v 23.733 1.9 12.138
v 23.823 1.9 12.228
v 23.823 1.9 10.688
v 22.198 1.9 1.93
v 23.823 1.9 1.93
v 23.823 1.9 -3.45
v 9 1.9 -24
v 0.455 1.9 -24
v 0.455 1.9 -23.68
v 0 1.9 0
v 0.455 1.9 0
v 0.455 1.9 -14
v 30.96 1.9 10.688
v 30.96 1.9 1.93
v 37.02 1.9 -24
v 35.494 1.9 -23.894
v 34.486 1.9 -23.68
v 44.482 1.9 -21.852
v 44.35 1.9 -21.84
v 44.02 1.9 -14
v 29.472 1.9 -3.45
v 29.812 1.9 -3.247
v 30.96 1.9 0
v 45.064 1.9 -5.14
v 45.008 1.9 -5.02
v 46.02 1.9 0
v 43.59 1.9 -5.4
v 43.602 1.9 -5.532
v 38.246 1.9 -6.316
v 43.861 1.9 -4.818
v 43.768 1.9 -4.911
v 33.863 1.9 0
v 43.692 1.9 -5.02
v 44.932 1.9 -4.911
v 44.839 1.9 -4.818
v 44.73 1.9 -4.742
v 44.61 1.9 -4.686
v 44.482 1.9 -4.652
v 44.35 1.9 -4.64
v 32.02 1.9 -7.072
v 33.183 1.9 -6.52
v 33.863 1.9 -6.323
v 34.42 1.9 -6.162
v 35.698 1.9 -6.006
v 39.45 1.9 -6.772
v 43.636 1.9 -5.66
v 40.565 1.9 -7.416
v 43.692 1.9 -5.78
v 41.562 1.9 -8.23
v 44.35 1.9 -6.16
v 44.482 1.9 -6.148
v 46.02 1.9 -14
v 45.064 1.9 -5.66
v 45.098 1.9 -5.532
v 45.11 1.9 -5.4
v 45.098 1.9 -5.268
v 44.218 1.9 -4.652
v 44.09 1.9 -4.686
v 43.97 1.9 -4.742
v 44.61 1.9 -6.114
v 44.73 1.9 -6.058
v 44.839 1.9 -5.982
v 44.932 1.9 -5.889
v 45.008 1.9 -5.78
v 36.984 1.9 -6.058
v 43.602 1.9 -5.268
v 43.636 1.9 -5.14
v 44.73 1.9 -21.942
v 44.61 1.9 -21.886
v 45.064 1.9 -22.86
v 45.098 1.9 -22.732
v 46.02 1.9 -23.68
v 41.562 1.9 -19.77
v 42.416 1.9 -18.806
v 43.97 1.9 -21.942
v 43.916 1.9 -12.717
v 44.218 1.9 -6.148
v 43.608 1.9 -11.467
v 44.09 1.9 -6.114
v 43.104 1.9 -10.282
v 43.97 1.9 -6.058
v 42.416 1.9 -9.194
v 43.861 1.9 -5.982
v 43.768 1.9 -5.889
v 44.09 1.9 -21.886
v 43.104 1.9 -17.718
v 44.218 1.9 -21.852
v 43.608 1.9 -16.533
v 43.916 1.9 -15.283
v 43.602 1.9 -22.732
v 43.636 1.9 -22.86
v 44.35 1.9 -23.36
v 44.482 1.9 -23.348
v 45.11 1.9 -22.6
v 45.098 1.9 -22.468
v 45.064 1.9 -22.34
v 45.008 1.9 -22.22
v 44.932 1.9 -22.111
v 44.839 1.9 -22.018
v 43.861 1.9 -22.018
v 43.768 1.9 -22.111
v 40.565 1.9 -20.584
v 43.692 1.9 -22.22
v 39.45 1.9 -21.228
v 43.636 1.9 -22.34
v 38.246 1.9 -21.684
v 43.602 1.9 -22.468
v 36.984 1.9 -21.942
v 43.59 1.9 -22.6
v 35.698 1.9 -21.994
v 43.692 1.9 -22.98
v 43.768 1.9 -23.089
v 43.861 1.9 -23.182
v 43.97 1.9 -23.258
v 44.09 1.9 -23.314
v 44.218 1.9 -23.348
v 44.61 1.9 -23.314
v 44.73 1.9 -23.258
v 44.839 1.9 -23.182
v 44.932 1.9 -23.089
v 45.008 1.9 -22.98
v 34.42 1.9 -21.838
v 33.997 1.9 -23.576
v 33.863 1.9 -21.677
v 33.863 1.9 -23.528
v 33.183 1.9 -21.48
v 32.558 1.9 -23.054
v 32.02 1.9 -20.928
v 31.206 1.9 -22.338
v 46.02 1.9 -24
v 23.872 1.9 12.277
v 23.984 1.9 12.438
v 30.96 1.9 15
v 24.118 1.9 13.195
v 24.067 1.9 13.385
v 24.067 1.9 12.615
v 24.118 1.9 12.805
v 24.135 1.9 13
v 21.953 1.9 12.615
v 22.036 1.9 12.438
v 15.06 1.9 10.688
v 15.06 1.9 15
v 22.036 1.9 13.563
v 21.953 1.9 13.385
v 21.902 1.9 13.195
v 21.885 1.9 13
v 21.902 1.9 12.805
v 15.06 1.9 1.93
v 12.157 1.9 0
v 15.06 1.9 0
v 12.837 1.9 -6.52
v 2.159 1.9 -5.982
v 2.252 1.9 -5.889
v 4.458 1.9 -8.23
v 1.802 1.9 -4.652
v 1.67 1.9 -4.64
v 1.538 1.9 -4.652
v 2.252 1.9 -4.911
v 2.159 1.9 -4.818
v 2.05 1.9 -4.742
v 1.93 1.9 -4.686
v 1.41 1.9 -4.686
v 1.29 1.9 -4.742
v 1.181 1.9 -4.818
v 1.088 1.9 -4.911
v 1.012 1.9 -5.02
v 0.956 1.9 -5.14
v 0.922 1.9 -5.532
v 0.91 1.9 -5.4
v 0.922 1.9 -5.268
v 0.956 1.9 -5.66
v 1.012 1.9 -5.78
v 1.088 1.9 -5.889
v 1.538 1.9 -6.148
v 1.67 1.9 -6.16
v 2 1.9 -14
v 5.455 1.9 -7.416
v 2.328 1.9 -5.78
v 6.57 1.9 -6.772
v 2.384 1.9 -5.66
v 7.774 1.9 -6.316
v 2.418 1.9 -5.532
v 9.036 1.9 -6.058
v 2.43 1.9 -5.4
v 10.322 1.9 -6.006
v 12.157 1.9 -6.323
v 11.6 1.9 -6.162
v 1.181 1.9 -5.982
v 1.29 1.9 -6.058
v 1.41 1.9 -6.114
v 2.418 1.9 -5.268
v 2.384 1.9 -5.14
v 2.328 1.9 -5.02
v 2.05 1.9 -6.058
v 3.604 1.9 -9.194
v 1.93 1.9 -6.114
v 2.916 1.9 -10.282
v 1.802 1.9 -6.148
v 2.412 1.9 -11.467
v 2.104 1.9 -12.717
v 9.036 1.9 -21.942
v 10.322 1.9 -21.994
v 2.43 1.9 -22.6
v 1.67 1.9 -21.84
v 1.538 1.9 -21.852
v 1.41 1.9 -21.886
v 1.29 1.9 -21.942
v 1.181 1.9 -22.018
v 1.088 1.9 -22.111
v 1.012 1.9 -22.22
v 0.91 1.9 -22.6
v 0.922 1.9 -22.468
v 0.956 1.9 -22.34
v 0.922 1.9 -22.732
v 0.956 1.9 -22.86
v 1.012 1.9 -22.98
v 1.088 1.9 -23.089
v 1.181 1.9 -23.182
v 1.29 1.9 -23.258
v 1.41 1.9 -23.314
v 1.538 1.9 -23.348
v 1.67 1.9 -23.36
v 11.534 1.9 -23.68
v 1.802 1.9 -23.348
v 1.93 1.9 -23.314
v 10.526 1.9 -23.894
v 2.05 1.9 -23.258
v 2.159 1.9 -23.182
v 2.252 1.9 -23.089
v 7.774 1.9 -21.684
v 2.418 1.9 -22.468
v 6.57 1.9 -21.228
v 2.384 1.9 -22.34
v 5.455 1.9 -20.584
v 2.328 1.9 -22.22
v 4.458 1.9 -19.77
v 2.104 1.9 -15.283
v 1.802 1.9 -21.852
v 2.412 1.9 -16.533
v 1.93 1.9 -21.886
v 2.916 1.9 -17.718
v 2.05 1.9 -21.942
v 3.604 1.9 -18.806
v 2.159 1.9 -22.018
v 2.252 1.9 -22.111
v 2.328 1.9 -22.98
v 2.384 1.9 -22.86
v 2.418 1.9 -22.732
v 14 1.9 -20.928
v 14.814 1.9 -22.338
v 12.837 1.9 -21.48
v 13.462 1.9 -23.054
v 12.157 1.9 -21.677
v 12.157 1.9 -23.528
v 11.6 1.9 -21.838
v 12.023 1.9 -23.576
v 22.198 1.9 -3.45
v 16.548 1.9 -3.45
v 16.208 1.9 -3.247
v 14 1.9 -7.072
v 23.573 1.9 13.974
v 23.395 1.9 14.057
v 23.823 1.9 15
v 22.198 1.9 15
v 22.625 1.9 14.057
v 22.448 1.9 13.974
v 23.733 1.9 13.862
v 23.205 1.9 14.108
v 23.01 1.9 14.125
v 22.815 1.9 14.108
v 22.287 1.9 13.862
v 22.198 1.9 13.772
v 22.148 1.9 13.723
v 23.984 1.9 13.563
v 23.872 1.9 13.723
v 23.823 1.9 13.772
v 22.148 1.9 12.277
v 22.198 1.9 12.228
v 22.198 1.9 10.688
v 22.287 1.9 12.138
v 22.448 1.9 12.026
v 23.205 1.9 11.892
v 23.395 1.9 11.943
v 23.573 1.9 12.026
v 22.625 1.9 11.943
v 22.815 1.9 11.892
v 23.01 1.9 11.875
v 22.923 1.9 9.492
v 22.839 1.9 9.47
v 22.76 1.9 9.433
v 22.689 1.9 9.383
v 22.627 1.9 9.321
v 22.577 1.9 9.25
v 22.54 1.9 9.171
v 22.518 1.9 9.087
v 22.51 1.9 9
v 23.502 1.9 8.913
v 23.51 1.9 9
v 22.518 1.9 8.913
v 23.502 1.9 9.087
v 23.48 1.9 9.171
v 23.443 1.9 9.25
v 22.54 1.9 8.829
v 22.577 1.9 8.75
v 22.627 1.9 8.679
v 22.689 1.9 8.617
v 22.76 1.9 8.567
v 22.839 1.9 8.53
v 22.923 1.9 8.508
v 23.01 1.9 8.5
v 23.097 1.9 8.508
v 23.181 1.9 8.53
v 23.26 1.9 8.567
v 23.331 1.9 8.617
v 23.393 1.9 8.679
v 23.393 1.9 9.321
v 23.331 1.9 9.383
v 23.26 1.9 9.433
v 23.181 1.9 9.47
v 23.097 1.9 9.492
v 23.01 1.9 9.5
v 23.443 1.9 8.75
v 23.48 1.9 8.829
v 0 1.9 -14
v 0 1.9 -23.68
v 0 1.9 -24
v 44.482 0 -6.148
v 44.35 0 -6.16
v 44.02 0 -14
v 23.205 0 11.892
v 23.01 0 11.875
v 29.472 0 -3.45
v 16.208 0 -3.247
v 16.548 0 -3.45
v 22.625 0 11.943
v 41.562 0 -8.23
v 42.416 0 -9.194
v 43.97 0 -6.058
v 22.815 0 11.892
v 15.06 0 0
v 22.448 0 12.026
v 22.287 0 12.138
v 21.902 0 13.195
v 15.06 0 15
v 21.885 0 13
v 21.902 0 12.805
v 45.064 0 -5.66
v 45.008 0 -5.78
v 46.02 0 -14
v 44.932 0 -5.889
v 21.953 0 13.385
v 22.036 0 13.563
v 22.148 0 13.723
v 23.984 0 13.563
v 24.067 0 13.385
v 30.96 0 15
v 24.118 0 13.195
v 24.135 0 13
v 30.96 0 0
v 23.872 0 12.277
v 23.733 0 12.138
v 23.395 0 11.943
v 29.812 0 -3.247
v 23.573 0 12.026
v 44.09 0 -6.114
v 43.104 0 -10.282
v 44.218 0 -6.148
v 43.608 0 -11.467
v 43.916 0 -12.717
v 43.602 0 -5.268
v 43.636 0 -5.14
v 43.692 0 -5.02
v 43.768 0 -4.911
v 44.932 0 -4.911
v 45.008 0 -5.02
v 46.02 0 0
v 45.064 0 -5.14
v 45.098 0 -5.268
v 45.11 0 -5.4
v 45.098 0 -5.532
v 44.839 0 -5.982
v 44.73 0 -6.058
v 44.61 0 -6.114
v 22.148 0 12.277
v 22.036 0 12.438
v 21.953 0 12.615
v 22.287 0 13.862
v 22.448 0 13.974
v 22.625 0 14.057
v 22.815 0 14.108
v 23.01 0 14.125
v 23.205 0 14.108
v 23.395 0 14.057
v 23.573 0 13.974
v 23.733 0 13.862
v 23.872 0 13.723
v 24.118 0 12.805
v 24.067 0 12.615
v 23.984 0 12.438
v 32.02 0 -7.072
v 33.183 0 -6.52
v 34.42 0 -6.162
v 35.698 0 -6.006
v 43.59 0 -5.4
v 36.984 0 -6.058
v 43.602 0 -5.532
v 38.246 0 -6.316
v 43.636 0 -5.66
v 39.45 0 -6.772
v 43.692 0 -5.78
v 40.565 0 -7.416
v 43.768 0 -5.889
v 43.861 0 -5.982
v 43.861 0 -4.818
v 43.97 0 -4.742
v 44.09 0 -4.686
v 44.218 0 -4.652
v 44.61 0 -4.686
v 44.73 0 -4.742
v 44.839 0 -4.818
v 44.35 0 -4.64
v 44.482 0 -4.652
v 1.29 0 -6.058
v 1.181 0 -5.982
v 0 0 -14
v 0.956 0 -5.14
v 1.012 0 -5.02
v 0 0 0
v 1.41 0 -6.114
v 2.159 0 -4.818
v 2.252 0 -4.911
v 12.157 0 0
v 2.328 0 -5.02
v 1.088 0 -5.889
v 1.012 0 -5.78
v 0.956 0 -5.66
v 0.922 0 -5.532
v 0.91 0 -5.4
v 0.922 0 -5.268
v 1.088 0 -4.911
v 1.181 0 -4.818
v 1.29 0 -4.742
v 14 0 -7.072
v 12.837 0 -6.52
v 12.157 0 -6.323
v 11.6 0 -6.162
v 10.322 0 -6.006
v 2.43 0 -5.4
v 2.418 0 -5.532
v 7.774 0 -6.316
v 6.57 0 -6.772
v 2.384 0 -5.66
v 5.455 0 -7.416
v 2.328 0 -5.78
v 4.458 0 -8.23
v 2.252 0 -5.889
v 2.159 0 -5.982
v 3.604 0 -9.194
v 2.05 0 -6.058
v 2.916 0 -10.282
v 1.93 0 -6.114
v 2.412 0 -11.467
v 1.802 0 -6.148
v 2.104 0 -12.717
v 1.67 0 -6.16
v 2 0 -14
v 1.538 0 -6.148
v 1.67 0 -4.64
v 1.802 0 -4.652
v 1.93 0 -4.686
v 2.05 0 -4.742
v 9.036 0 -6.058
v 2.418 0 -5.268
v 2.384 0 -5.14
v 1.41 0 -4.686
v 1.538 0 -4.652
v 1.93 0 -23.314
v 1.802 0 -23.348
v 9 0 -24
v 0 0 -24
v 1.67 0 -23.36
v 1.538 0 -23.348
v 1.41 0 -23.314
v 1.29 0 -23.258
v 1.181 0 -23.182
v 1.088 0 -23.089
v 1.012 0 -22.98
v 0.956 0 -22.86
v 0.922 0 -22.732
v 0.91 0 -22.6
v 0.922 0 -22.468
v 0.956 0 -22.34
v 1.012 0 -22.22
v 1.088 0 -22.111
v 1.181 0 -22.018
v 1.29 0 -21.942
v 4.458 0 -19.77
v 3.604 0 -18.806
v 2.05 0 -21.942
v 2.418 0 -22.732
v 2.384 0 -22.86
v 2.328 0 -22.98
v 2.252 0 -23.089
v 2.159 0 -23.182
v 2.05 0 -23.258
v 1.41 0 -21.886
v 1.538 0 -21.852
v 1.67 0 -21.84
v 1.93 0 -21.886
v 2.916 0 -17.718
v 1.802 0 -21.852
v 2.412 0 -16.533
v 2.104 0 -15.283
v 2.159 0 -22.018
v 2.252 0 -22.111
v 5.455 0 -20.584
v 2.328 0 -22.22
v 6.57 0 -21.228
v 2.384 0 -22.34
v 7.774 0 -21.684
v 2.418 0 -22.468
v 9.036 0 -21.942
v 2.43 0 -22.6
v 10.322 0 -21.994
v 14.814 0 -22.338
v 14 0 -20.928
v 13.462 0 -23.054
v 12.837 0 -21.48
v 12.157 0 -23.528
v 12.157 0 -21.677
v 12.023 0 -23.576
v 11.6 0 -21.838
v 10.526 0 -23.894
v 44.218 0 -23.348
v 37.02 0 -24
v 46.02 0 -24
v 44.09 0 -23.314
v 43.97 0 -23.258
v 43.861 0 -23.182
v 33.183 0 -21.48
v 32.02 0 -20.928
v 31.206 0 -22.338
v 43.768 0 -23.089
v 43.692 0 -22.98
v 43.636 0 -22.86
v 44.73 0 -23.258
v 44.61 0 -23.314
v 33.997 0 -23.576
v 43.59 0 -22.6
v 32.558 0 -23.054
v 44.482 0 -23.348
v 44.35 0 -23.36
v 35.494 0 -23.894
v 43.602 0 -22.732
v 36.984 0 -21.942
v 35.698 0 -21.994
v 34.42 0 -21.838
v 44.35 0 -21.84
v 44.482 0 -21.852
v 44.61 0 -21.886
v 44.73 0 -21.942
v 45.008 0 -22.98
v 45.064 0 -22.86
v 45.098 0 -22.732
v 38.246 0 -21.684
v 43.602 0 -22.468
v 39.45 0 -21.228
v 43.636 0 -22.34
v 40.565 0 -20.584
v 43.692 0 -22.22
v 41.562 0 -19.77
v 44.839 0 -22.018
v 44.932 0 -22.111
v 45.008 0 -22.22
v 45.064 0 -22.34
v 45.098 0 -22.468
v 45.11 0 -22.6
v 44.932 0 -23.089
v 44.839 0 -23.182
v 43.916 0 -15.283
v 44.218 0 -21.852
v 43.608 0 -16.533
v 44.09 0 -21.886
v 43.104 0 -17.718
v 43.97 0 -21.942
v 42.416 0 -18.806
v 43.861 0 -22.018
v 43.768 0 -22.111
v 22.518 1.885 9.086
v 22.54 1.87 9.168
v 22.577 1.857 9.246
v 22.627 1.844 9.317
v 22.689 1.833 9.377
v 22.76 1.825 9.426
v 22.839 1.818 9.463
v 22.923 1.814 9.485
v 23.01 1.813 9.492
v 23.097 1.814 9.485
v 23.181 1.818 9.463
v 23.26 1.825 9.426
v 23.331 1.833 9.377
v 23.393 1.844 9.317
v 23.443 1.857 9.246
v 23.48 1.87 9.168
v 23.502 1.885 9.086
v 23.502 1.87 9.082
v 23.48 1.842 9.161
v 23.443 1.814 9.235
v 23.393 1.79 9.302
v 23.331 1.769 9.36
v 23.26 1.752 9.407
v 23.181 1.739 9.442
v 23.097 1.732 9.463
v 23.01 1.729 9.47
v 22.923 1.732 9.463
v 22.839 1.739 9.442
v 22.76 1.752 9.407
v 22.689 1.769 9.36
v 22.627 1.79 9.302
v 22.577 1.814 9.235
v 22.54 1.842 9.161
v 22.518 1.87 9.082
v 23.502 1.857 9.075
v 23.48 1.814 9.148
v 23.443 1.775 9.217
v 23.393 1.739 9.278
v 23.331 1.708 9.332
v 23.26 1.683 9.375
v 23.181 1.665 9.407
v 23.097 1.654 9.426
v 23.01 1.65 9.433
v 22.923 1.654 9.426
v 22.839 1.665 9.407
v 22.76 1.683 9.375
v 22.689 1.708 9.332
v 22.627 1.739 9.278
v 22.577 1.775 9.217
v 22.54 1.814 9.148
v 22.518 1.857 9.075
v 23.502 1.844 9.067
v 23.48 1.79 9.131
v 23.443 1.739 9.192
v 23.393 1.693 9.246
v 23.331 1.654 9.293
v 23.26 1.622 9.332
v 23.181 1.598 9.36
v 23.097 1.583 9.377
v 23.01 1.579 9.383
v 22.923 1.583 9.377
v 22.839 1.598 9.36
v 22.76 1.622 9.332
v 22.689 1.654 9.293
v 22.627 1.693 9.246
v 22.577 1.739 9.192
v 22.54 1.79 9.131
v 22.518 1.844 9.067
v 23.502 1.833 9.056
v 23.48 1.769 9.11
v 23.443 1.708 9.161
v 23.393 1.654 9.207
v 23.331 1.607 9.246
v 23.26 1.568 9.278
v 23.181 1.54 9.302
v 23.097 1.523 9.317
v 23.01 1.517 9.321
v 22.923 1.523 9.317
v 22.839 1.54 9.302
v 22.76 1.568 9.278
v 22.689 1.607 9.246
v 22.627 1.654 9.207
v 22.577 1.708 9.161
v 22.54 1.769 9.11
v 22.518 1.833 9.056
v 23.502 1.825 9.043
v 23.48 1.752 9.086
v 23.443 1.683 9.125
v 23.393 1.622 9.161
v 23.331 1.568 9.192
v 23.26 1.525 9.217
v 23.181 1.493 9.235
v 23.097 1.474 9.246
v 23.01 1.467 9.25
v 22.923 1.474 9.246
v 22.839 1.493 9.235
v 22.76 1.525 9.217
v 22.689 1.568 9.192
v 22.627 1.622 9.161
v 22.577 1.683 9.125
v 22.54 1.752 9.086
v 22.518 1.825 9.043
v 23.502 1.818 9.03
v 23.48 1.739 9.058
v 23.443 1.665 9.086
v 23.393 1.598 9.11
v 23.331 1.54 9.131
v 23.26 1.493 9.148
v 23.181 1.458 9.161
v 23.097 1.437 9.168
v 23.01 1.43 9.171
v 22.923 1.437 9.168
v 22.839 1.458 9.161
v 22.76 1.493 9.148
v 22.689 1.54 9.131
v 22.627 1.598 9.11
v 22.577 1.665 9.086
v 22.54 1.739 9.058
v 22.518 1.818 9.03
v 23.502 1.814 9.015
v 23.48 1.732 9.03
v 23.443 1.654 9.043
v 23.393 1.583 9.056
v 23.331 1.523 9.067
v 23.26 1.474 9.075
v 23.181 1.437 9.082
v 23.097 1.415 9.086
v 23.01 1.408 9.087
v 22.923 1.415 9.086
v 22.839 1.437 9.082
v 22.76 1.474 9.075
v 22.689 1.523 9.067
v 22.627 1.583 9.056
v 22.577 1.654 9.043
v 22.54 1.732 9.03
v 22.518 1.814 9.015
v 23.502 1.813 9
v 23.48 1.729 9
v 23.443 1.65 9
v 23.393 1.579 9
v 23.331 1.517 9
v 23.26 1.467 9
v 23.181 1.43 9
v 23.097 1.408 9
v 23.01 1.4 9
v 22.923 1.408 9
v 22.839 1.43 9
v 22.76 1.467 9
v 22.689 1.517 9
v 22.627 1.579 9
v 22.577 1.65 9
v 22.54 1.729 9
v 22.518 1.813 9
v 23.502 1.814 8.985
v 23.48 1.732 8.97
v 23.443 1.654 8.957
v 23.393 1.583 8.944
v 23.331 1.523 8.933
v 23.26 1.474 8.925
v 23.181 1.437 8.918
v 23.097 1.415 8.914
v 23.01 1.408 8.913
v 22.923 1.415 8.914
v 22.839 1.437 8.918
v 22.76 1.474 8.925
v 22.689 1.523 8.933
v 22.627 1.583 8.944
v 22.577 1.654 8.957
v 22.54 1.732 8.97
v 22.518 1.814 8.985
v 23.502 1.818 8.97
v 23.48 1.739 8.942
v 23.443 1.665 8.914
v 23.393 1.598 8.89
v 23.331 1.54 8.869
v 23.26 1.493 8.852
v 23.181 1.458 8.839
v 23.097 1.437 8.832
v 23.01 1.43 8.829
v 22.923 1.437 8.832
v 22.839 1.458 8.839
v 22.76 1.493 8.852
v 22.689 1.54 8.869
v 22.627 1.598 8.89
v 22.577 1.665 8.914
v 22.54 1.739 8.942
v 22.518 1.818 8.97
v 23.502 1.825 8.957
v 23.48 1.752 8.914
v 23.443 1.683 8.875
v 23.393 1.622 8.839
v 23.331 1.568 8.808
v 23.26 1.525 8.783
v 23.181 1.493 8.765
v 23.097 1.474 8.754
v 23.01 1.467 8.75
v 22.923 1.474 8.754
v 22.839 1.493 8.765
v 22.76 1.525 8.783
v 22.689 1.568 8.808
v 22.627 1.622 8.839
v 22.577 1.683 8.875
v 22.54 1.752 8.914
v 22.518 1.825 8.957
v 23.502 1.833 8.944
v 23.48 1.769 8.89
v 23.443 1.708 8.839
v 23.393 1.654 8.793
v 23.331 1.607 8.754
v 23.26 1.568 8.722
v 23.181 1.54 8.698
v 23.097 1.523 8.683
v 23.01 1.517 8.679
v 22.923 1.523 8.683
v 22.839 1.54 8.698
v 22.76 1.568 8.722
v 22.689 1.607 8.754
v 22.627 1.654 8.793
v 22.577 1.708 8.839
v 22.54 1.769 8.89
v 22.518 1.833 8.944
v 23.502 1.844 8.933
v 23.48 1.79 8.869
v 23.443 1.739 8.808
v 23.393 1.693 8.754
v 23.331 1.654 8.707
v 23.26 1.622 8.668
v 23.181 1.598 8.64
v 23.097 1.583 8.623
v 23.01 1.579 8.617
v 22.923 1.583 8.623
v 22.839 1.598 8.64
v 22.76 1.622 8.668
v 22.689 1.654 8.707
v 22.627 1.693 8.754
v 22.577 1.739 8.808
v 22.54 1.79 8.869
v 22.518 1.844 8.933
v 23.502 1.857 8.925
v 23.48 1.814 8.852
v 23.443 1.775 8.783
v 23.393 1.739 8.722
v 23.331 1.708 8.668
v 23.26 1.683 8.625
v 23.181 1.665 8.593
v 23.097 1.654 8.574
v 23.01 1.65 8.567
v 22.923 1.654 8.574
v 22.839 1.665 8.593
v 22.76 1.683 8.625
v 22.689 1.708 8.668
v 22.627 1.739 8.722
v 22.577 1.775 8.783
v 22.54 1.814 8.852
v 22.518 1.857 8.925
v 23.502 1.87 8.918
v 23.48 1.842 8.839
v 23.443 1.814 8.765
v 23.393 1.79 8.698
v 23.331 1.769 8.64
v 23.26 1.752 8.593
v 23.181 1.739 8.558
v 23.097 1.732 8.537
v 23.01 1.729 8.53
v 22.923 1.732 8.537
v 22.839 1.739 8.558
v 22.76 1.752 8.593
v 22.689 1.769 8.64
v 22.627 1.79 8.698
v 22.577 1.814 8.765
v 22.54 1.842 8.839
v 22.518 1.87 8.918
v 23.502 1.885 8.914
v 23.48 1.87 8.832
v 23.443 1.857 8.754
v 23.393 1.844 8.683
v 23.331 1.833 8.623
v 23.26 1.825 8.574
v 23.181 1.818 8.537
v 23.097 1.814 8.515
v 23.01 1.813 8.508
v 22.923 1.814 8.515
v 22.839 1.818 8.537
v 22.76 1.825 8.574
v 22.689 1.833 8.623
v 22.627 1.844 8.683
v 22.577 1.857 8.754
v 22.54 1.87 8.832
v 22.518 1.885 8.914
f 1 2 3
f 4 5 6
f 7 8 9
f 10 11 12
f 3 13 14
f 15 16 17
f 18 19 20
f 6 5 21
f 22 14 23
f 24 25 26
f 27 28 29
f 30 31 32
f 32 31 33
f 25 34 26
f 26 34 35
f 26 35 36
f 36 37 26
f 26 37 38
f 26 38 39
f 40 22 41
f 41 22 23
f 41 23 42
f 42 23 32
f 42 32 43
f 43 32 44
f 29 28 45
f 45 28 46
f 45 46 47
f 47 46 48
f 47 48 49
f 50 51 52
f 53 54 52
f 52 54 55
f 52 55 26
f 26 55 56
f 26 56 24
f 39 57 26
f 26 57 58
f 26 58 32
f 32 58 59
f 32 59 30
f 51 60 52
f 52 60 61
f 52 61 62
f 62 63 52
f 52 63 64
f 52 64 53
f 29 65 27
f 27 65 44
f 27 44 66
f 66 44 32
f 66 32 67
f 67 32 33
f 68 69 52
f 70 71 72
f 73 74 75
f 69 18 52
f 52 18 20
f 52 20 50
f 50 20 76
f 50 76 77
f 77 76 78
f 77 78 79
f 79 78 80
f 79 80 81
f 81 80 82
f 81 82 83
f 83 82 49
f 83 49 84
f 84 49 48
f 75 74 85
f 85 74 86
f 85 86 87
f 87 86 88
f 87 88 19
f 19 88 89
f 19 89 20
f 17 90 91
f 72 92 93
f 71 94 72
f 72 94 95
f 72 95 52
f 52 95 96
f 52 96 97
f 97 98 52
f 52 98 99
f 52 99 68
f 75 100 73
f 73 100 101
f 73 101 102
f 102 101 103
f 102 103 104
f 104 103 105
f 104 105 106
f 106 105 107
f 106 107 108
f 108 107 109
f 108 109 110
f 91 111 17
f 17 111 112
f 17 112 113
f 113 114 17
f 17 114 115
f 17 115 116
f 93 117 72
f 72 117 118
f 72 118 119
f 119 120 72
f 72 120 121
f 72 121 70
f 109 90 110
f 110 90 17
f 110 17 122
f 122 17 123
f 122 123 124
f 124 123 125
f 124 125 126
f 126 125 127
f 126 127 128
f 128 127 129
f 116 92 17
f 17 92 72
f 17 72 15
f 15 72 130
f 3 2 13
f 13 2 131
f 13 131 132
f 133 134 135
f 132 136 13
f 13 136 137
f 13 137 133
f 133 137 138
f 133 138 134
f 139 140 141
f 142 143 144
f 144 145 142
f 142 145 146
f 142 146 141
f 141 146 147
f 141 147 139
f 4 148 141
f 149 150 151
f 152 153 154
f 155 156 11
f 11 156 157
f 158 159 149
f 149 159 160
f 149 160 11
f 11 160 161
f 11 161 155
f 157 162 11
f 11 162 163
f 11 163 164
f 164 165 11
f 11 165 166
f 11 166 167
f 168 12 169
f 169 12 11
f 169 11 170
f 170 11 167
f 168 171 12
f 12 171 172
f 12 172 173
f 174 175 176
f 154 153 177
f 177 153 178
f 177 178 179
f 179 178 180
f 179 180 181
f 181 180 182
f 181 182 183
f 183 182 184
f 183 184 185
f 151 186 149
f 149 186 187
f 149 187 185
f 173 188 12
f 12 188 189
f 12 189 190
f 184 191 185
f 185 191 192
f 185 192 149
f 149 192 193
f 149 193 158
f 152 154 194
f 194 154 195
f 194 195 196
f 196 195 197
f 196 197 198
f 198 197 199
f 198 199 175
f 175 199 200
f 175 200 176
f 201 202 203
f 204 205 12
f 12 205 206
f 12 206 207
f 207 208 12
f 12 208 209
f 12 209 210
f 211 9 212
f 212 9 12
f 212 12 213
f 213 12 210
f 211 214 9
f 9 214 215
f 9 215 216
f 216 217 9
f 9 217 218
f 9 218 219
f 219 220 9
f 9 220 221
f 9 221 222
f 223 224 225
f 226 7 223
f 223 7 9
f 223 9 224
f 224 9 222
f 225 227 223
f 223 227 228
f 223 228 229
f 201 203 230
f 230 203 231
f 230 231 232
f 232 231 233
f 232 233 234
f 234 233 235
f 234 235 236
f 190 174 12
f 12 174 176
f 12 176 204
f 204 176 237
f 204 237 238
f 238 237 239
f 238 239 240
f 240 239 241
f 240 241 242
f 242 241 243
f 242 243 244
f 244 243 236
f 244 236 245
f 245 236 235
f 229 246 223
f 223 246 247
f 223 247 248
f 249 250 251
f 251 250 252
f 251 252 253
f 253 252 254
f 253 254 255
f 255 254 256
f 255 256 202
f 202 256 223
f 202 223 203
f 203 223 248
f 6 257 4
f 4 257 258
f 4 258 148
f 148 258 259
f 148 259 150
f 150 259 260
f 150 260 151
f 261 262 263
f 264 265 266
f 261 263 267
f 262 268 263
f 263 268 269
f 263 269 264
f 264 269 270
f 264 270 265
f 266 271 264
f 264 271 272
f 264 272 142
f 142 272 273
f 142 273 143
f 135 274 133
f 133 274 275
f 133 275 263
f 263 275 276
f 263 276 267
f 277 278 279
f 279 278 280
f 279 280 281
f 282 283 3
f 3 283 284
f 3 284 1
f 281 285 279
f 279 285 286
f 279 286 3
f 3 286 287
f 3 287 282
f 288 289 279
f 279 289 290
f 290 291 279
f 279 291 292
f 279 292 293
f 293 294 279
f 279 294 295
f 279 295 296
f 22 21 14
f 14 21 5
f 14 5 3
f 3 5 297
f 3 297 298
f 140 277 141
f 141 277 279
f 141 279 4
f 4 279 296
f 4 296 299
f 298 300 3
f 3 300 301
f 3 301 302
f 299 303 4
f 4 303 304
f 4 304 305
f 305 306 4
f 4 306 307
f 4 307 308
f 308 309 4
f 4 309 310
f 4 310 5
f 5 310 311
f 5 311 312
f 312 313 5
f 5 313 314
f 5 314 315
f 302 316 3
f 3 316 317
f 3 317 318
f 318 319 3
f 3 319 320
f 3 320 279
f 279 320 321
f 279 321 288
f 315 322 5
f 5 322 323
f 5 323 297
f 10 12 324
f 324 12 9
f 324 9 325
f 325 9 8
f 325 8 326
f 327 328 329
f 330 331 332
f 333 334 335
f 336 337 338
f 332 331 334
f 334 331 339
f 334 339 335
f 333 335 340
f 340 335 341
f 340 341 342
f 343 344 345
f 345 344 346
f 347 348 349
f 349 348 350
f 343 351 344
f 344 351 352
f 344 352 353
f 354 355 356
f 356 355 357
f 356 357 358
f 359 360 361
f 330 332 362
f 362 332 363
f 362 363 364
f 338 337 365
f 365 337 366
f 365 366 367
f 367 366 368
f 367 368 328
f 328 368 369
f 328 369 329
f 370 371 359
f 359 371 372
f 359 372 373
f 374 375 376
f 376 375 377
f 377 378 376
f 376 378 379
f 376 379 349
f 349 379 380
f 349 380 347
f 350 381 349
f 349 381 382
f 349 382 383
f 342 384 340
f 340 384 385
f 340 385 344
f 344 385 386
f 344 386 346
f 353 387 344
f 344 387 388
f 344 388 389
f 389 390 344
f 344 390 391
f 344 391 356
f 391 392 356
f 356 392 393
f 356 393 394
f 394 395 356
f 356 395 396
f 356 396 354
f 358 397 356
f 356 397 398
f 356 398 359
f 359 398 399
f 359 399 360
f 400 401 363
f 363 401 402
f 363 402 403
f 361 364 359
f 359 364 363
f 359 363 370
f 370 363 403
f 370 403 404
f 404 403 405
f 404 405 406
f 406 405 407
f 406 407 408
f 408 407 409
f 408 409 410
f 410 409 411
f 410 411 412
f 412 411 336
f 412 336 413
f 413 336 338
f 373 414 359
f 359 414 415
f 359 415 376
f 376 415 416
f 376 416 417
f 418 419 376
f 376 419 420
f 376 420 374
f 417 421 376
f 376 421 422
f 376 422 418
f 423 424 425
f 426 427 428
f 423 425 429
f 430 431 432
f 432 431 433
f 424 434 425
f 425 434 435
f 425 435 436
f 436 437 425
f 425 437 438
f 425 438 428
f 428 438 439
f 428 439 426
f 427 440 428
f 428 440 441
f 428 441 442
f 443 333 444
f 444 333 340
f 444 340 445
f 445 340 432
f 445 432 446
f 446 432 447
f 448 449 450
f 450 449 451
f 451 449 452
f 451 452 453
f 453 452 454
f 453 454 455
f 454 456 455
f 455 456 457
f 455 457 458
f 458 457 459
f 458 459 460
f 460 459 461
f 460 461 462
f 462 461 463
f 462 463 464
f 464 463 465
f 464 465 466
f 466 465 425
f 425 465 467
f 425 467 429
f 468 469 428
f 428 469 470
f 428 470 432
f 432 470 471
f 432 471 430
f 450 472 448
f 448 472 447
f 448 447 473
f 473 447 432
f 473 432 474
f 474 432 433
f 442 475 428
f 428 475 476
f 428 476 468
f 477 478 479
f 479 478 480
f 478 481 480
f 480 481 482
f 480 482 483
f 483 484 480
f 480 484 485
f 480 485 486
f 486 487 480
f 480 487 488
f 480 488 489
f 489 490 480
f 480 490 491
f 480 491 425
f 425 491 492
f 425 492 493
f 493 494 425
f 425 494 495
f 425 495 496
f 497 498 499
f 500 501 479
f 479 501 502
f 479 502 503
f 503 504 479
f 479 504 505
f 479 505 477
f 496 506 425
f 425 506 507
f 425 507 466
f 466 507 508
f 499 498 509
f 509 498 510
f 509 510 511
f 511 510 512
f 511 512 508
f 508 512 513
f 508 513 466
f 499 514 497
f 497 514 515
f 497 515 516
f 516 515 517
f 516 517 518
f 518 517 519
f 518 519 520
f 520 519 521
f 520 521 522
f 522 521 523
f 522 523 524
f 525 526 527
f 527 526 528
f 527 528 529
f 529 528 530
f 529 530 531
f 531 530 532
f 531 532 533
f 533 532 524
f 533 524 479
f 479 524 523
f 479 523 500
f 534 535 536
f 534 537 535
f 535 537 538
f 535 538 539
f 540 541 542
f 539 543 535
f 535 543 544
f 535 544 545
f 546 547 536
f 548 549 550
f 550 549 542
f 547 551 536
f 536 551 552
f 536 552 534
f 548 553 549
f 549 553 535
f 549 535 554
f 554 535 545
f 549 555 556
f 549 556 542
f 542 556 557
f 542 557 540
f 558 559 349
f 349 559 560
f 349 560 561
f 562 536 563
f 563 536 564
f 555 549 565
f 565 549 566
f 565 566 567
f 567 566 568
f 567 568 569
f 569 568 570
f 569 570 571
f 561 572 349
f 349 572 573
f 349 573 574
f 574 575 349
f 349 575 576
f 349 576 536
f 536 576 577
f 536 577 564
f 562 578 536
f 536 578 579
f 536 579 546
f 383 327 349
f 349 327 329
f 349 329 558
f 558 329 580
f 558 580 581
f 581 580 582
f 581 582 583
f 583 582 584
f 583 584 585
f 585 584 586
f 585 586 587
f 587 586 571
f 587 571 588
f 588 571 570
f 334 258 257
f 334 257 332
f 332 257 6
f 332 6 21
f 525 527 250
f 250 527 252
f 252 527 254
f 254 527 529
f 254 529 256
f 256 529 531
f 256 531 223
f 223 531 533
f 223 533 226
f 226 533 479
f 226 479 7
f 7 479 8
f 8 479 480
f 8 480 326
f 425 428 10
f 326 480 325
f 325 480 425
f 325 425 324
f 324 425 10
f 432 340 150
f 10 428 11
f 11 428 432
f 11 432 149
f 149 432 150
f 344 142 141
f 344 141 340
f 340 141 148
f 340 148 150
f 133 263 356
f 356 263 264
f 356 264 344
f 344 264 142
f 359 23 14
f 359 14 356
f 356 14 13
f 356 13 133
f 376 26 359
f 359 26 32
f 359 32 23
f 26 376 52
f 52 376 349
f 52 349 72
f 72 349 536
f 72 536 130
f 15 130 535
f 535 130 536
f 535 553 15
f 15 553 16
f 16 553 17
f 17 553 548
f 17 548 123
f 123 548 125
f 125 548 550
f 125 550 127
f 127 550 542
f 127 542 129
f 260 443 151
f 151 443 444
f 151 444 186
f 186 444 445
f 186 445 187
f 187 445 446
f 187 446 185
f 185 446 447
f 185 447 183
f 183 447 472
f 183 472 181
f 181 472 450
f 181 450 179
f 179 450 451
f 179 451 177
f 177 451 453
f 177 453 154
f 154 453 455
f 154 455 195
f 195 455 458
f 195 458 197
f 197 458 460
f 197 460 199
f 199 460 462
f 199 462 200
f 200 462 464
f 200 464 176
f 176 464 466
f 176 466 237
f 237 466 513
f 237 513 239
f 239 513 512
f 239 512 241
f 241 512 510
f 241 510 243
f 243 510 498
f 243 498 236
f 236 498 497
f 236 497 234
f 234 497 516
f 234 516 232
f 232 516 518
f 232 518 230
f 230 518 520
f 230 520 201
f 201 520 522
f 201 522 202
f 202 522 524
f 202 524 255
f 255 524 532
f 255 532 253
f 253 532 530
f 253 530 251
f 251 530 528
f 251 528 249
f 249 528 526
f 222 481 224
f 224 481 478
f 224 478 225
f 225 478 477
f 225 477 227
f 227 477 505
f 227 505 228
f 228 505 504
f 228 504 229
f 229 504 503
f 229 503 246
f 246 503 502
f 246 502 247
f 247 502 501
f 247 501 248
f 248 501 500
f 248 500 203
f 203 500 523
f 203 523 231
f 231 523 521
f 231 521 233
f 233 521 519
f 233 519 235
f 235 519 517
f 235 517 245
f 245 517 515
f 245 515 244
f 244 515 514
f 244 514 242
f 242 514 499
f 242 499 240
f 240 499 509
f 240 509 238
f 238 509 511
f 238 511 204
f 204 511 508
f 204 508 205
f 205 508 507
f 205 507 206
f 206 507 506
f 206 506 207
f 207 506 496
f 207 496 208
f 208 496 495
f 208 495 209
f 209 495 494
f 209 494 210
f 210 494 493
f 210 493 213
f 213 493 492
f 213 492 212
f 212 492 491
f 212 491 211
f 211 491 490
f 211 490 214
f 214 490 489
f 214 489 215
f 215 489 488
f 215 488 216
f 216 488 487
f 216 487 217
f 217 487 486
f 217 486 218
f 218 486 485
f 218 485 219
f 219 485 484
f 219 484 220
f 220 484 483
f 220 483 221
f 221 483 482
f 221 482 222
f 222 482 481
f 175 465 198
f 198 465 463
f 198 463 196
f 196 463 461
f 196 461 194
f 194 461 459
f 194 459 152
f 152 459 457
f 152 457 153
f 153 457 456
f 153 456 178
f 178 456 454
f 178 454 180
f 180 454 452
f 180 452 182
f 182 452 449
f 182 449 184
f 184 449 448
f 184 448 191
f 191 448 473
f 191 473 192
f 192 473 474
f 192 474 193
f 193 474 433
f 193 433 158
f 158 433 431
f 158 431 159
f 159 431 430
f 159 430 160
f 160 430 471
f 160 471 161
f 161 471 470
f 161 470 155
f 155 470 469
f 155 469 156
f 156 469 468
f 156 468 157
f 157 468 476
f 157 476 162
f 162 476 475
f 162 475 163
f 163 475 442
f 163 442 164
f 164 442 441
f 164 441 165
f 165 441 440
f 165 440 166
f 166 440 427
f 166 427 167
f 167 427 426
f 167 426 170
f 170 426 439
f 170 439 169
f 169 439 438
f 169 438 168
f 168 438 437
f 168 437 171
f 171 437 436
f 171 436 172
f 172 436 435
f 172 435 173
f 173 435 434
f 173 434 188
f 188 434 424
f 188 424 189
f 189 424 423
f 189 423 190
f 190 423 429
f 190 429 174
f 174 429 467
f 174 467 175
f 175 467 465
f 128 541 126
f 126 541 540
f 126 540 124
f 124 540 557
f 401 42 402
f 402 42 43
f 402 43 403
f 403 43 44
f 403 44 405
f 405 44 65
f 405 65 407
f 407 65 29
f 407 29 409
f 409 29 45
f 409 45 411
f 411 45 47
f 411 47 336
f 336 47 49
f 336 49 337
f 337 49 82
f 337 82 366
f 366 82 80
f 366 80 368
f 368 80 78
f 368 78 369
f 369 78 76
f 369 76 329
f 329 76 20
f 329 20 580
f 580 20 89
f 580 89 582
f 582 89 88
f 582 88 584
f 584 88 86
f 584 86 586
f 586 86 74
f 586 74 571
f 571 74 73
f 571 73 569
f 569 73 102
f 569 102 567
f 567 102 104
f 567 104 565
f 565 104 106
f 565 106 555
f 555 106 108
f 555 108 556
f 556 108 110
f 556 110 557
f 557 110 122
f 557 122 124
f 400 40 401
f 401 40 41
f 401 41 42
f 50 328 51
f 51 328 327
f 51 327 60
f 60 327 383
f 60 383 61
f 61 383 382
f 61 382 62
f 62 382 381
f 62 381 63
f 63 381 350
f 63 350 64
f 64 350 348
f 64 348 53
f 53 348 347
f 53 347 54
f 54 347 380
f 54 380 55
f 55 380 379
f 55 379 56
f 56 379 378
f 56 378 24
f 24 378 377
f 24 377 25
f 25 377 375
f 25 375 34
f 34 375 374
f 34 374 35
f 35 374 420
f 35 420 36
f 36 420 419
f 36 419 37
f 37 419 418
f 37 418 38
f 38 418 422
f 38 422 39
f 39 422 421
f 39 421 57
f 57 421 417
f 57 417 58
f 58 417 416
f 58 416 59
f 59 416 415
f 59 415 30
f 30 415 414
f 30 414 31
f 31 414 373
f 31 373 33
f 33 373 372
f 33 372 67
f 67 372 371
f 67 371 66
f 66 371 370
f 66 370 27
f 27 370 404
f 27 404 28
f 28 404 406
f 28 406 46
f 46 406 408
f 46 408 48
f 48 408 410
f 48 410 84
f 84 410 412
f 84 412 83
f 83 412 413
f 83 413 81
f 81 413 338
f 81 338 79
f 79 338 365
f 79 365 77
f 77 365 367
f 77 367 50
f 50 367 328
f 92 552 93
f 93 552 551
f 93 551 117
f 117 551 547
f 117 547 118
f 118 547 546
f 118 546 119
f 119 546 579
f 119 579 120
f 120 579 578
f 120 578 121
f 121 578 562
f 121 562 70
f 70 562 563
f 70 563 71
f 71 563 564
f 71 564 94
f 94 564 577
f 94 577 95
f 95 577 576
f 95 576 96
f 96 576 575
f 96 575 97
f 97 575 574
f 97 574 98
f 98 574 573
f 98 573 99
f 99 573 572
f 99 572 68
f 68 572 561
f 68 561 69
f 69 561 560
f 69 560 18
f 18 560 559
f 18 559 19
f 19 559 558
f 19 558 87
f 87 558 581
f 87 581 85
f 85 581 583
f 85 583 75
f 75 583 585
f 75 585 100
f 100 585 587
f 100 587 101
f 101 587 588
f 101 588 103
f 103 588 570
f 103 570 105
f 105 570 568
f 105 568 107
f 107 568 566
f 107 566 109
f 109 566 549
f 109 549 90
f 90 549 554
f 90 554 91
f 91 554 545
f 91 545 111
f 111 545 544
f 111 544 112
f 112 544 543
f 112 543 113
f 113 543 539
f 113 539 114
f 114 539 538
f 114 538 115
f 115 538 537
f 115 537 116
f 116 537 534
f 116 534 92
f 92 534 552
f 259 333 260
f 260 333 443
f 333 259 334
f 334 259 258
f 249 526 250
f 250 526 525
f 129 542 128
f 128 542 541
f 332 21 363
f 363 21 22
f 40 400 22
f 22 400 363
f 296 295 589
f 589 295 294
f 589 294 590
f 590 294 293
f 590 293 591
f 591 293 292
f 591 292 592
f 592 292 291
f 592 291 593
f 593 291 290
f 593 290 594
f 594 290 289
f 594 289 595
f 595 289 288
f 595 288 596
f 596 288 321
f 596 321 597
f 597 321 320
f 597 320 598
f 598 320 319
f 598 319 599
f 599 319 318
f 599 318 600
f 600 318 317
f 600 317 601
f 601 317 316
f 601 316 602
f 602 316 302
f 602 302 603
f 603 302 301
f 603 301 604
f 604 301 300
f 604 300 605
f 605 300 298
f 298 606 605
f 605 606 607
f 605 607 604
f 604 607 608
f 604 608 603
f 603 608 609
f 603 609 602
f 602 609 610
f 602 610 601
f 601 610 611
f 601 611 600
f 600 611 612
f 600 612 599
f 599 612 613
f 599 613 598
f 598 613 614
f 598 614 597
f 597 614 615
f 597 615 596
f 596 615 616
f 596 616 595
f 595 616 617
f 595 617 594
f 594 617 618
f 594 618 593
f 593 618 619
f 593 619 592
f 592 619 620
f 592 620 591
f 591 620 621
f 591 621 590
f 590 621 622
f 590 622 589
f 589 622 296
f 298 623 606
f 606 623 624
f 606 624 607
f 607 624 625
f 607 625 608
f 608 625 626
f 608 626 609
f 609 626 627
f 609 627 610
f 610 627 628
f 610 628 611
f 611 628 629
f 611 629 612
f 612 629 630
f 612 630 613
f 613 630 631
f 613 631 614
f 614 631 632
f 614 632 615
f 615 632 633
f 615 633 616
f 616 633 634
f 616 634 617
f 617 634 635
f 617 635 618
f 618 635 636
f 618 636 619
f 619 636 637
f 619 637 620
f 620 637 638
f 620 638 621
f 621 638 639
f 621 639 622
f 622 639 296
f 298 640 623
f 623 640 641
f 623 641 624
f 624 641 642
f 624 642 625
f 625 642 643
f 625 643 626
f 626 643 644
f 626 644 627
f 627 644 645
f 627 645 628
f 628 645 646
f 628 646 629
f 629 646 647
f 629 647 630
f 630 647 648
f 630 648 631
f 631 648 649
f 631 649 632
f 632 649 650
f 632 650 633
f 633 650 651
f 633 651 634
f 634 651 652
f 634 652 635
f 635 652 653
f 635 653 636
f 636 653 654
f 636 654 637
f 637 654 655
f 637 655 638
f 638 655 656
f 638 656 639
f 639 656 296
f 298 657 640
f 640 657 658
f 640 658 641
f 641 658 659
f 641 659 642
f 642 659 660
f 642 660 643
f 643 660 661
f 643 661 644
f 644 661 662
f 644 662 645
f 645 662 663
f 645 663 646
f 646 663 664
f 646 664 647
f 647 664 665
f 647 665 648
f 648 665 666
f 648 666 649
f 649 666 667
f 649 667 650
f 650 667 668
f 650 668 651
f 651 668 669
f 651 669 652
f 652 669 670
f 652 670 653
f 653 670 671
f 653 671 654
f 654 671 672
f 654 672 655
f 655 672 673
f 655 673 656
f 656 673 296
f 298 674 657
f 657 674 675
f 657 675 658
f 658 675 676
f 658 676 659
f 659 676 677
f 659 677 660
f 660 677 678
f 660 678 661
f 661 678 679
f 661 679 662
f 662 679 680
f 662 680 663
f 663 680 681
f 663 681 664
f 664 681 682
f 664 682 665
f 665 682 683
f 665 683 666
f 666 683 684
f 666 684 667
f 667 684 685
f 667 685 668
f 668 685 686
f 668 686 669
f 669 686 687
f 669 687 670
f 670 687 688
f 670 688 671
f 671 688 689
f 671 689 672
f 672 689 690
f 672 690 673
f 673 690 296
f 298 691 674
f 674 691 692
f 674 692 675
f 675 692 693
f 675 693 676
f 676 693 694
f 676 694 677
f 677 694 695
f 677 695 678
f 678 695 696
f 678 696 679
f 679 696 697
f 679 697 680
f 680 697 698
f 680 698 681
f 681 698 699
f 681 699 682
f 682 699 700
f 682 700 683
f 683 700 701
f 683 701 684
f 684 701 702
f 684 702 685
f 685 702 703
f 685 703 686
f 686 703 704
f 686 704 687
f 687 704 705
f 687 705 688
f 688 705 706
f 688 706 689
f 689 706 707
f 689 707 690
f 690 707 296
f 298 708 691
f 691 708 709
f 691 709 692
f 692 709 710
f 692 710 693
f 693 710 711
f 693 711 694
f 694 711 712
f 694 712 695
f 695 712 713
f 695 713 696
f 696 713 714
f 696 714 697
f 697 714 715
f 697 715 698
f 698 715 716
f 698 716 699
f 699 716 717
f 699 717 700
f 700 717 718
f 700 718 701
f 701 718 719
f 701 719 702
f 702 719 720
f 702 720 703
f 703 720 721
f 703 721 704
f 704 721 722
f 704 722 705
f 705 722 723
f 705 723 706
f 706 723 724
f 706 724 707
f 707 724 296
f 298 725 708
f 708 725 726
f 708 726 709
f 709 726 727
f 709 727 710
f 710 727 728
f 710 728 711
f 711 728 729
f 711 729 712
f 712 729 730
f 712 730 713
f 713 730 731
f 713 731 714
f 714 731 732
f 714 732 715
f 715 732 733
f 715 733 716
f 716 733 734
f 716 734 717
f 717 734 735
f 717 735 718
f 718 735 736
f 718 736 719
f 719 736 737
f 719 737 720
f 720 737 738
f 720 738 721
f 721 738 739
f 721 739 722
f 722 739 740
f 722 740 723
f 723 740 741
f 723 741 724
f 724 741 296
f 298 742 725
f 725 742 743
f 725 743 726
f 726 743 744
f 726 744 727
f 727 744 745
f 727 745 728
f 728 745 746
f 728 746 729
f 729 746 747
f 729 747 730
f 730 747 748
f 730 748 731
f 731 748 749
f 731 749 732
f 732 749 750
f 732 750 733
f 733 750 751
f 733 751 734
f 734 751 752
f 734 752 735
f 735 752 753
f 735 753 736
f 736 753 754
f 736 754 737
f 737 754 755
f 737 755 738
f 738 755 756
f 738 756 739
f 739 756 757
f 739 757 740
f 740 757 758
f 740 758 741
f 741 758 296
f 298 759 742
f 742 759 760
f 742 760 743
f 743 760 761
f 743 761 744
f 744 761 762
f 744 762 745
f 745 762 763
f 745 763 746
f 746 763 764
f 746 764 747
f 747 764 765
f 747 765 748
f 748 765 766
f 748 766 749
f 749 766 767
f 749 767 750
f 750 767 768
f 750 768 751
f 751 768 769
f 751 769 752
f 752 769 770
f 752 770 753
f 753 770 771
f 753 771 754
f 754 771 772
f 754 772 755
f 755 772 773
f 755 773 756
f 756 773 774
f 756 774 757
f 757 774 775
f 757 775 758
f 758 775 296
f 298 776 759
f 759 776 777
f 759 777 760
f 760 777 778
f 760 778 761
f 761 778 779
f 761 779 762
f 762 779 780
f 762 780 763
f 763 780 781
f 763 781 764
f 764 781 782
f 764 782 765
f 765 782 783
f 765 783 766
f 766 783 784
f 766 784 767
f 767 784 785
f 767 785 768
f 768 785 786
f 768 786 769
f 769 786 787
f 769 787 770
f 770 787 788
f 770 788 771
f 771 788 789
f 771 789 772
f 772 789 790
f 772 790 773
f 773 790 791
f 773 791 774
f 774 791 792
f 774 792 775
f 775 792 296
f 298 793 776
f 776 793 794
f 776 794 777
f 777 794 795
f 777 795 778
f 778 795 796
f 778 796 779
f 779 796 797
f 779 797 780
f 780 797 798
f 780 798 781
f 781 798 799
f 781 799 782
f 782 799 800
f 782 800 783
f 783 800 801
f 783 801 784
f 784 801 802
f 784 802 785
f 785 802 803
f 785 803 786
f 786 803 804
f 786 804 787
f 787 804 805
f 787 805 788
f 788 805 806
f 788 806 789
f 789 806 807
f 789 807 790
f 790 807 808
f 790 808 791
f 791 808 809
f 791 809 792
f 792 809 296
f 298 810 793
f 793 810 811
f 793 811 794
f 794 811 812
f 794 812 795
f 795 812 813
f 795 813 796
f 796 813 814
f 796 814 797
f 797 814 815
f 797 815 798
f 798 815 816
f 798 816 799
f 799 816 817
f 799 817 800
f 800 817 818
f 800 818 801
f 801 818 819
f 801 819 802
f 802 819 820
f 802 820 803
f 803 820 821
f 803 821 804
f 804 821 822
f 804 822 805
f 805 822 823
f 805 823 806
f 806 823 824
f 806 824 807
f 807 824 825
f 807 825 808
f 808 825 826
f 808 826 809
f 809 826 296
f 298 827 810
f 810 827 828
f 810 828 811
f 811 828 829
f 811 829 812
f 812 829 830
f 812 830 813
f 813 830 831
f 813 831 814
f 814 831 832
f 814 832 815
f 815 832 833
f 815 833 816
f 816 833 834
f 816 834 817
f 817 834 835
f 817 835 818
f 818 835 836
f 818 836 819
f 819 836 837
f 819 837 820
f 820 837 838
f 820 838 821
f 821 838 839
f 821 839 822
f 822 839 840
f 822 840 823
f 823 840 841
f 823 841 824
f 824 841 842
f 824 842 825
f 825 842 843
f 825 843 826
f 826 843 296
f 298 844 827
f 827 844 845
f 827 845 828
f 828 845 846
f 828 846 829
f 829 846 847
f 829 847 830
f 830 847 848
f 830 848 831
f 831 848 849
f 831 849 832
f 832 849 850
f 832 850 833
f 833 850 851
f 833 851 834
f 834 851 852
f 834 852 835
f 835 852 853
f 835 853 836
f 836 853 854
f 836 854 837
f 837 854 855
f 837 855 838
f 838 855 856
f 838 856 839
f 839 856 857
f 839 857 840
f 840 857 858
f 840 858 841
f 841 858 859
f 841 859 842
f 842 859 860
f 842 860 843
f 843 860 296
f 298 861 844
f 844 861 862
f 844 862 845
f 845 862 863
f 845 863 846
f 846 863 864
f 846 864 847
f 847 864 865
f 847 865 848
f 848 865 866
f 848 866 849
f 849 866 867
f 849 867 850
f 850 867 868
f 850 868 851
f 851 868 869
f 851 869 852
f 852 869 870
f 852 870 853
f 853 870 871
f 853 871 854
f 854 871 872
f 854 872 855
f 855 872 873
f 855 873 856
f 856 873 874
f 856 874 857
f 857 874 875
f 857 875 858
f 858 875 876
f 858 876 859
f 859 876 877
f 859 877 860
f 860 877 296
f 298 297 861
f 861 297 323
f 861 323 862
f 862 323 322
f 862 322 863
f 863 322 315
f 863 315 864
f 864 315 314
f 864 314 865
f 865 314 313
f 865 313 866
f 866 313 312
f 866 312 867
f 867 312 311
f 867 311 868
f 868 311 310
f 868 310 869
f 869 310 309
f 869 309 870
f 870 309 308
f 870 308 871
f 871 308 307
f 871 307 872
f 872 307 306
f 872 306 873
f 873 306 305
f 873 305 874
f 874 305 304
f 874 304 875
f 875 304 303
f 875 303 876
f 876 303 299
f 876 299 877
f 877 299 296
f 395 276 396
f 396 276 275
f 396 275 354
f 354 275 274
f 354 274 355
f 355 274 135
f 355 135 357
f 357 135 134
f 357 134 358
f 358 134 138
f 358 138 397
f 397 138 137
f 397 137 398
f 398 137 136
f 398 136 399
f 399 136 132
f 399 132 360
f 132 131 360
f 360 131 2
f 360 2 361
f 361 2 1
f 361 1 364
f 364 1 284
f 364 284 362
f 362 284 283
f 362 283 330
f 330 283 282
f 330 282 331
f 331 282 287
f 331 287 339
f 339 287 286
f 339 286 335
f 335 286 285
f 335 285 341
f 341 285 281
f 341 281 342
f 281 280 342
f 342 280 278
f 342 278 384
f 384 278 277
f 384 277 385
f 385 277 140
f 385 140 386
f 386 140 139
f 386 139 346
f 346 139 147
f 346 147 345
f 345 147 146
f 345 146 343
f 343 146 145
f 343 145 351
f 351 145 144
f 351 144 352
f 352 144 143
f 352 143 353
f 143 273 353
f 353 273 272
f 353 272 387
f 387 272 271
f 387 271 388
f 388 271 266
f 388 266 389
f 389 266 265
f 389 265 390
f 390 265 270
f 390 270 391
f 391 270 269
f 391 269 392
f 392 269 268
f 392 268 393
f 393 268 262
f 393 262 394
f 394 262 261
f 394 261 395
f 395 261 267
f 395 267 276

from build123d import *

# Parameters (mm, degrees)
CROQUIS1_R              = 8
CROQUIS1_R_2            = 0.76
SALIENTE_EXTRUIR1_DEPTH = 1.9
CORTAR_EXTRUIR1_START   = -10
CORTAR_EXTRUIR1_DEPTH   = 10
CROQUIS5_R              = 1.125
CORTAR_EXTRUIR2_DEPTH   = 52.936984895


with BuildPart() as part:
    # Croquis1 → Saliente-Extruir1 (new body)
    with BuildSketch(Plane(origin=(0, 0, 0), x_dir=(1, 0, 0), z_dir=(0, 1, 0))):
        with BuildLine():
            Line((16.42006532, 3.45), (29.59993468, 3.45))
            ThreePointArc((29.59993468, 3.45), (26.951107015, 7.365390191), (26.02, 12))
            Line((26.02, 12), (26.02, 13))
            ThreePointArc((26.02, 13), (29.241825407, 20.778174593), (37.02, 24))
            Line((37.02, 24), (46.02, 24))
            Line((46.02, 24), (46.02, 0))
            Line((46.02, 0), (30.96, 0))
            Line((30.96, 0), (30.96, -15))
            Line((30.96, -15), (15.06, -15))
            Line((15.06, -15), (15.06, 0))
            Line((15.06, 0), (0, 0))
            Line((0, 0), (0, 24))
            Line((0, 24), (9, 24))
            ThreePointArc((9, 24), (16.778174593, 20.778174593), (20, 13))
            Line((20, 13), (20, 12))
            ThreePointArc((20, 12), (19.068892985, 7.365390191), (16.42006532, 3.45))
        make_face()
        with Locations(Location((10, 14, 0), (0, 0, 90))):
            Circle(CROQUIS1_R, mode=Mode.SUBTRACT)
        with Locations(Location((1.67, 22.6, 0), (0, 0, 90))):
            Circle(CROQUIS1_R_2, mode=Mode.SUBTRACT)
        with Locations(Location((1.67, 5.4, 0), (0, 0, 90))):
            Circle(CROQUIS1_R_2, mode=Mode.SUBTRACT)
        with Locations(Location((36.02, 14, 0), (0, 0, 90))):
            Circle(CROQUIS1_R, mode=Mode.SUBTRACT)
        with Locations(Location((44.35, 5.4, 0), (0, 0, 90))):
            Circle(CROQUIS1_R_2, mode=Mode.SUBTRACT)
        with Locations(Location((44.35, 22.6, 0), (0, 0, 90))):
            Circle(CROQUIS1_R_2, mode=Mode.SUBTRACT)
    extrude(amount=SALIENTE_EXTRUIR1_DEPTH)

    # Croquis2 → Cortar-Extruir1 (cut)
    with BuildSketch(Plane(origin=(0, 1.9, 0), x_dir=(1, 0, 0), z_dir=(0, 1, 0)).offset(CORTAR_EXTRUIR1_START)):
        with BuildLine():
            Line((16.208454231, 24.753358164), (14, 20.92820323))
            ThreePointArc((14, 20.92820323), (18, 14), (14, 7.07179677))
            Line((14, 7.07179677), (16.208454231, 3.246641836))
            ThreePointArc((16.208454231, 3.246641836), (22.416908461, 14), (16.208454231, 24.753358164))
        make_face()
        with BuildLine():
            Line((32.02, 7.07179677), (29.811545769, 3.246641836))
            ThreePointArc((29.811545769, 3.246641836), (23.603091539, 14), (29.811545769, 24.753358164))
            Line((29.811545769, 24.753358164), (32.02, 20.92820323))
            ThreePointArc((32.02, 20.92820323), (28.02, 14), (32.02, 7.07179677))
        make_face()
    extrude(amount=CORTAR_EXTRUIR1_DEPTH, mode=Mode.SUBTRACT)

    # Croquis4 → Cortar-Revolución1 (revolve, cut)
    with BuildSketch(Plane.XY.offset(9)):
        with BuildLine():
            Line((22.51, 1.9), (23.51, 1.9))
            ThreePointArc((23.51, 1.9), (23.01, 1.4), (22.51, 1.9))
        make_face()
    revolve(axis=Axis((-976.99, 1.9, 9), (1, 0, 0)), mode=Mode.SUBTRACT)

    # Croquis5 → Cortar-Extruir2 (cut, through all)
    with BuildSketch(Plane(origin=(0, 1.9, 0), x_dir=(1, 0, 0), z_dir=(0, 1, 0))):
        with Locations(Location((23.01, -13, 0), (0, 0, 270))):
            Circle(CROQUIS5_R)
    extrude(amount=-CORTAR_EXTRUIR2_DEPTH, mode=Mode.SUBTRACT)


solid = part.part
